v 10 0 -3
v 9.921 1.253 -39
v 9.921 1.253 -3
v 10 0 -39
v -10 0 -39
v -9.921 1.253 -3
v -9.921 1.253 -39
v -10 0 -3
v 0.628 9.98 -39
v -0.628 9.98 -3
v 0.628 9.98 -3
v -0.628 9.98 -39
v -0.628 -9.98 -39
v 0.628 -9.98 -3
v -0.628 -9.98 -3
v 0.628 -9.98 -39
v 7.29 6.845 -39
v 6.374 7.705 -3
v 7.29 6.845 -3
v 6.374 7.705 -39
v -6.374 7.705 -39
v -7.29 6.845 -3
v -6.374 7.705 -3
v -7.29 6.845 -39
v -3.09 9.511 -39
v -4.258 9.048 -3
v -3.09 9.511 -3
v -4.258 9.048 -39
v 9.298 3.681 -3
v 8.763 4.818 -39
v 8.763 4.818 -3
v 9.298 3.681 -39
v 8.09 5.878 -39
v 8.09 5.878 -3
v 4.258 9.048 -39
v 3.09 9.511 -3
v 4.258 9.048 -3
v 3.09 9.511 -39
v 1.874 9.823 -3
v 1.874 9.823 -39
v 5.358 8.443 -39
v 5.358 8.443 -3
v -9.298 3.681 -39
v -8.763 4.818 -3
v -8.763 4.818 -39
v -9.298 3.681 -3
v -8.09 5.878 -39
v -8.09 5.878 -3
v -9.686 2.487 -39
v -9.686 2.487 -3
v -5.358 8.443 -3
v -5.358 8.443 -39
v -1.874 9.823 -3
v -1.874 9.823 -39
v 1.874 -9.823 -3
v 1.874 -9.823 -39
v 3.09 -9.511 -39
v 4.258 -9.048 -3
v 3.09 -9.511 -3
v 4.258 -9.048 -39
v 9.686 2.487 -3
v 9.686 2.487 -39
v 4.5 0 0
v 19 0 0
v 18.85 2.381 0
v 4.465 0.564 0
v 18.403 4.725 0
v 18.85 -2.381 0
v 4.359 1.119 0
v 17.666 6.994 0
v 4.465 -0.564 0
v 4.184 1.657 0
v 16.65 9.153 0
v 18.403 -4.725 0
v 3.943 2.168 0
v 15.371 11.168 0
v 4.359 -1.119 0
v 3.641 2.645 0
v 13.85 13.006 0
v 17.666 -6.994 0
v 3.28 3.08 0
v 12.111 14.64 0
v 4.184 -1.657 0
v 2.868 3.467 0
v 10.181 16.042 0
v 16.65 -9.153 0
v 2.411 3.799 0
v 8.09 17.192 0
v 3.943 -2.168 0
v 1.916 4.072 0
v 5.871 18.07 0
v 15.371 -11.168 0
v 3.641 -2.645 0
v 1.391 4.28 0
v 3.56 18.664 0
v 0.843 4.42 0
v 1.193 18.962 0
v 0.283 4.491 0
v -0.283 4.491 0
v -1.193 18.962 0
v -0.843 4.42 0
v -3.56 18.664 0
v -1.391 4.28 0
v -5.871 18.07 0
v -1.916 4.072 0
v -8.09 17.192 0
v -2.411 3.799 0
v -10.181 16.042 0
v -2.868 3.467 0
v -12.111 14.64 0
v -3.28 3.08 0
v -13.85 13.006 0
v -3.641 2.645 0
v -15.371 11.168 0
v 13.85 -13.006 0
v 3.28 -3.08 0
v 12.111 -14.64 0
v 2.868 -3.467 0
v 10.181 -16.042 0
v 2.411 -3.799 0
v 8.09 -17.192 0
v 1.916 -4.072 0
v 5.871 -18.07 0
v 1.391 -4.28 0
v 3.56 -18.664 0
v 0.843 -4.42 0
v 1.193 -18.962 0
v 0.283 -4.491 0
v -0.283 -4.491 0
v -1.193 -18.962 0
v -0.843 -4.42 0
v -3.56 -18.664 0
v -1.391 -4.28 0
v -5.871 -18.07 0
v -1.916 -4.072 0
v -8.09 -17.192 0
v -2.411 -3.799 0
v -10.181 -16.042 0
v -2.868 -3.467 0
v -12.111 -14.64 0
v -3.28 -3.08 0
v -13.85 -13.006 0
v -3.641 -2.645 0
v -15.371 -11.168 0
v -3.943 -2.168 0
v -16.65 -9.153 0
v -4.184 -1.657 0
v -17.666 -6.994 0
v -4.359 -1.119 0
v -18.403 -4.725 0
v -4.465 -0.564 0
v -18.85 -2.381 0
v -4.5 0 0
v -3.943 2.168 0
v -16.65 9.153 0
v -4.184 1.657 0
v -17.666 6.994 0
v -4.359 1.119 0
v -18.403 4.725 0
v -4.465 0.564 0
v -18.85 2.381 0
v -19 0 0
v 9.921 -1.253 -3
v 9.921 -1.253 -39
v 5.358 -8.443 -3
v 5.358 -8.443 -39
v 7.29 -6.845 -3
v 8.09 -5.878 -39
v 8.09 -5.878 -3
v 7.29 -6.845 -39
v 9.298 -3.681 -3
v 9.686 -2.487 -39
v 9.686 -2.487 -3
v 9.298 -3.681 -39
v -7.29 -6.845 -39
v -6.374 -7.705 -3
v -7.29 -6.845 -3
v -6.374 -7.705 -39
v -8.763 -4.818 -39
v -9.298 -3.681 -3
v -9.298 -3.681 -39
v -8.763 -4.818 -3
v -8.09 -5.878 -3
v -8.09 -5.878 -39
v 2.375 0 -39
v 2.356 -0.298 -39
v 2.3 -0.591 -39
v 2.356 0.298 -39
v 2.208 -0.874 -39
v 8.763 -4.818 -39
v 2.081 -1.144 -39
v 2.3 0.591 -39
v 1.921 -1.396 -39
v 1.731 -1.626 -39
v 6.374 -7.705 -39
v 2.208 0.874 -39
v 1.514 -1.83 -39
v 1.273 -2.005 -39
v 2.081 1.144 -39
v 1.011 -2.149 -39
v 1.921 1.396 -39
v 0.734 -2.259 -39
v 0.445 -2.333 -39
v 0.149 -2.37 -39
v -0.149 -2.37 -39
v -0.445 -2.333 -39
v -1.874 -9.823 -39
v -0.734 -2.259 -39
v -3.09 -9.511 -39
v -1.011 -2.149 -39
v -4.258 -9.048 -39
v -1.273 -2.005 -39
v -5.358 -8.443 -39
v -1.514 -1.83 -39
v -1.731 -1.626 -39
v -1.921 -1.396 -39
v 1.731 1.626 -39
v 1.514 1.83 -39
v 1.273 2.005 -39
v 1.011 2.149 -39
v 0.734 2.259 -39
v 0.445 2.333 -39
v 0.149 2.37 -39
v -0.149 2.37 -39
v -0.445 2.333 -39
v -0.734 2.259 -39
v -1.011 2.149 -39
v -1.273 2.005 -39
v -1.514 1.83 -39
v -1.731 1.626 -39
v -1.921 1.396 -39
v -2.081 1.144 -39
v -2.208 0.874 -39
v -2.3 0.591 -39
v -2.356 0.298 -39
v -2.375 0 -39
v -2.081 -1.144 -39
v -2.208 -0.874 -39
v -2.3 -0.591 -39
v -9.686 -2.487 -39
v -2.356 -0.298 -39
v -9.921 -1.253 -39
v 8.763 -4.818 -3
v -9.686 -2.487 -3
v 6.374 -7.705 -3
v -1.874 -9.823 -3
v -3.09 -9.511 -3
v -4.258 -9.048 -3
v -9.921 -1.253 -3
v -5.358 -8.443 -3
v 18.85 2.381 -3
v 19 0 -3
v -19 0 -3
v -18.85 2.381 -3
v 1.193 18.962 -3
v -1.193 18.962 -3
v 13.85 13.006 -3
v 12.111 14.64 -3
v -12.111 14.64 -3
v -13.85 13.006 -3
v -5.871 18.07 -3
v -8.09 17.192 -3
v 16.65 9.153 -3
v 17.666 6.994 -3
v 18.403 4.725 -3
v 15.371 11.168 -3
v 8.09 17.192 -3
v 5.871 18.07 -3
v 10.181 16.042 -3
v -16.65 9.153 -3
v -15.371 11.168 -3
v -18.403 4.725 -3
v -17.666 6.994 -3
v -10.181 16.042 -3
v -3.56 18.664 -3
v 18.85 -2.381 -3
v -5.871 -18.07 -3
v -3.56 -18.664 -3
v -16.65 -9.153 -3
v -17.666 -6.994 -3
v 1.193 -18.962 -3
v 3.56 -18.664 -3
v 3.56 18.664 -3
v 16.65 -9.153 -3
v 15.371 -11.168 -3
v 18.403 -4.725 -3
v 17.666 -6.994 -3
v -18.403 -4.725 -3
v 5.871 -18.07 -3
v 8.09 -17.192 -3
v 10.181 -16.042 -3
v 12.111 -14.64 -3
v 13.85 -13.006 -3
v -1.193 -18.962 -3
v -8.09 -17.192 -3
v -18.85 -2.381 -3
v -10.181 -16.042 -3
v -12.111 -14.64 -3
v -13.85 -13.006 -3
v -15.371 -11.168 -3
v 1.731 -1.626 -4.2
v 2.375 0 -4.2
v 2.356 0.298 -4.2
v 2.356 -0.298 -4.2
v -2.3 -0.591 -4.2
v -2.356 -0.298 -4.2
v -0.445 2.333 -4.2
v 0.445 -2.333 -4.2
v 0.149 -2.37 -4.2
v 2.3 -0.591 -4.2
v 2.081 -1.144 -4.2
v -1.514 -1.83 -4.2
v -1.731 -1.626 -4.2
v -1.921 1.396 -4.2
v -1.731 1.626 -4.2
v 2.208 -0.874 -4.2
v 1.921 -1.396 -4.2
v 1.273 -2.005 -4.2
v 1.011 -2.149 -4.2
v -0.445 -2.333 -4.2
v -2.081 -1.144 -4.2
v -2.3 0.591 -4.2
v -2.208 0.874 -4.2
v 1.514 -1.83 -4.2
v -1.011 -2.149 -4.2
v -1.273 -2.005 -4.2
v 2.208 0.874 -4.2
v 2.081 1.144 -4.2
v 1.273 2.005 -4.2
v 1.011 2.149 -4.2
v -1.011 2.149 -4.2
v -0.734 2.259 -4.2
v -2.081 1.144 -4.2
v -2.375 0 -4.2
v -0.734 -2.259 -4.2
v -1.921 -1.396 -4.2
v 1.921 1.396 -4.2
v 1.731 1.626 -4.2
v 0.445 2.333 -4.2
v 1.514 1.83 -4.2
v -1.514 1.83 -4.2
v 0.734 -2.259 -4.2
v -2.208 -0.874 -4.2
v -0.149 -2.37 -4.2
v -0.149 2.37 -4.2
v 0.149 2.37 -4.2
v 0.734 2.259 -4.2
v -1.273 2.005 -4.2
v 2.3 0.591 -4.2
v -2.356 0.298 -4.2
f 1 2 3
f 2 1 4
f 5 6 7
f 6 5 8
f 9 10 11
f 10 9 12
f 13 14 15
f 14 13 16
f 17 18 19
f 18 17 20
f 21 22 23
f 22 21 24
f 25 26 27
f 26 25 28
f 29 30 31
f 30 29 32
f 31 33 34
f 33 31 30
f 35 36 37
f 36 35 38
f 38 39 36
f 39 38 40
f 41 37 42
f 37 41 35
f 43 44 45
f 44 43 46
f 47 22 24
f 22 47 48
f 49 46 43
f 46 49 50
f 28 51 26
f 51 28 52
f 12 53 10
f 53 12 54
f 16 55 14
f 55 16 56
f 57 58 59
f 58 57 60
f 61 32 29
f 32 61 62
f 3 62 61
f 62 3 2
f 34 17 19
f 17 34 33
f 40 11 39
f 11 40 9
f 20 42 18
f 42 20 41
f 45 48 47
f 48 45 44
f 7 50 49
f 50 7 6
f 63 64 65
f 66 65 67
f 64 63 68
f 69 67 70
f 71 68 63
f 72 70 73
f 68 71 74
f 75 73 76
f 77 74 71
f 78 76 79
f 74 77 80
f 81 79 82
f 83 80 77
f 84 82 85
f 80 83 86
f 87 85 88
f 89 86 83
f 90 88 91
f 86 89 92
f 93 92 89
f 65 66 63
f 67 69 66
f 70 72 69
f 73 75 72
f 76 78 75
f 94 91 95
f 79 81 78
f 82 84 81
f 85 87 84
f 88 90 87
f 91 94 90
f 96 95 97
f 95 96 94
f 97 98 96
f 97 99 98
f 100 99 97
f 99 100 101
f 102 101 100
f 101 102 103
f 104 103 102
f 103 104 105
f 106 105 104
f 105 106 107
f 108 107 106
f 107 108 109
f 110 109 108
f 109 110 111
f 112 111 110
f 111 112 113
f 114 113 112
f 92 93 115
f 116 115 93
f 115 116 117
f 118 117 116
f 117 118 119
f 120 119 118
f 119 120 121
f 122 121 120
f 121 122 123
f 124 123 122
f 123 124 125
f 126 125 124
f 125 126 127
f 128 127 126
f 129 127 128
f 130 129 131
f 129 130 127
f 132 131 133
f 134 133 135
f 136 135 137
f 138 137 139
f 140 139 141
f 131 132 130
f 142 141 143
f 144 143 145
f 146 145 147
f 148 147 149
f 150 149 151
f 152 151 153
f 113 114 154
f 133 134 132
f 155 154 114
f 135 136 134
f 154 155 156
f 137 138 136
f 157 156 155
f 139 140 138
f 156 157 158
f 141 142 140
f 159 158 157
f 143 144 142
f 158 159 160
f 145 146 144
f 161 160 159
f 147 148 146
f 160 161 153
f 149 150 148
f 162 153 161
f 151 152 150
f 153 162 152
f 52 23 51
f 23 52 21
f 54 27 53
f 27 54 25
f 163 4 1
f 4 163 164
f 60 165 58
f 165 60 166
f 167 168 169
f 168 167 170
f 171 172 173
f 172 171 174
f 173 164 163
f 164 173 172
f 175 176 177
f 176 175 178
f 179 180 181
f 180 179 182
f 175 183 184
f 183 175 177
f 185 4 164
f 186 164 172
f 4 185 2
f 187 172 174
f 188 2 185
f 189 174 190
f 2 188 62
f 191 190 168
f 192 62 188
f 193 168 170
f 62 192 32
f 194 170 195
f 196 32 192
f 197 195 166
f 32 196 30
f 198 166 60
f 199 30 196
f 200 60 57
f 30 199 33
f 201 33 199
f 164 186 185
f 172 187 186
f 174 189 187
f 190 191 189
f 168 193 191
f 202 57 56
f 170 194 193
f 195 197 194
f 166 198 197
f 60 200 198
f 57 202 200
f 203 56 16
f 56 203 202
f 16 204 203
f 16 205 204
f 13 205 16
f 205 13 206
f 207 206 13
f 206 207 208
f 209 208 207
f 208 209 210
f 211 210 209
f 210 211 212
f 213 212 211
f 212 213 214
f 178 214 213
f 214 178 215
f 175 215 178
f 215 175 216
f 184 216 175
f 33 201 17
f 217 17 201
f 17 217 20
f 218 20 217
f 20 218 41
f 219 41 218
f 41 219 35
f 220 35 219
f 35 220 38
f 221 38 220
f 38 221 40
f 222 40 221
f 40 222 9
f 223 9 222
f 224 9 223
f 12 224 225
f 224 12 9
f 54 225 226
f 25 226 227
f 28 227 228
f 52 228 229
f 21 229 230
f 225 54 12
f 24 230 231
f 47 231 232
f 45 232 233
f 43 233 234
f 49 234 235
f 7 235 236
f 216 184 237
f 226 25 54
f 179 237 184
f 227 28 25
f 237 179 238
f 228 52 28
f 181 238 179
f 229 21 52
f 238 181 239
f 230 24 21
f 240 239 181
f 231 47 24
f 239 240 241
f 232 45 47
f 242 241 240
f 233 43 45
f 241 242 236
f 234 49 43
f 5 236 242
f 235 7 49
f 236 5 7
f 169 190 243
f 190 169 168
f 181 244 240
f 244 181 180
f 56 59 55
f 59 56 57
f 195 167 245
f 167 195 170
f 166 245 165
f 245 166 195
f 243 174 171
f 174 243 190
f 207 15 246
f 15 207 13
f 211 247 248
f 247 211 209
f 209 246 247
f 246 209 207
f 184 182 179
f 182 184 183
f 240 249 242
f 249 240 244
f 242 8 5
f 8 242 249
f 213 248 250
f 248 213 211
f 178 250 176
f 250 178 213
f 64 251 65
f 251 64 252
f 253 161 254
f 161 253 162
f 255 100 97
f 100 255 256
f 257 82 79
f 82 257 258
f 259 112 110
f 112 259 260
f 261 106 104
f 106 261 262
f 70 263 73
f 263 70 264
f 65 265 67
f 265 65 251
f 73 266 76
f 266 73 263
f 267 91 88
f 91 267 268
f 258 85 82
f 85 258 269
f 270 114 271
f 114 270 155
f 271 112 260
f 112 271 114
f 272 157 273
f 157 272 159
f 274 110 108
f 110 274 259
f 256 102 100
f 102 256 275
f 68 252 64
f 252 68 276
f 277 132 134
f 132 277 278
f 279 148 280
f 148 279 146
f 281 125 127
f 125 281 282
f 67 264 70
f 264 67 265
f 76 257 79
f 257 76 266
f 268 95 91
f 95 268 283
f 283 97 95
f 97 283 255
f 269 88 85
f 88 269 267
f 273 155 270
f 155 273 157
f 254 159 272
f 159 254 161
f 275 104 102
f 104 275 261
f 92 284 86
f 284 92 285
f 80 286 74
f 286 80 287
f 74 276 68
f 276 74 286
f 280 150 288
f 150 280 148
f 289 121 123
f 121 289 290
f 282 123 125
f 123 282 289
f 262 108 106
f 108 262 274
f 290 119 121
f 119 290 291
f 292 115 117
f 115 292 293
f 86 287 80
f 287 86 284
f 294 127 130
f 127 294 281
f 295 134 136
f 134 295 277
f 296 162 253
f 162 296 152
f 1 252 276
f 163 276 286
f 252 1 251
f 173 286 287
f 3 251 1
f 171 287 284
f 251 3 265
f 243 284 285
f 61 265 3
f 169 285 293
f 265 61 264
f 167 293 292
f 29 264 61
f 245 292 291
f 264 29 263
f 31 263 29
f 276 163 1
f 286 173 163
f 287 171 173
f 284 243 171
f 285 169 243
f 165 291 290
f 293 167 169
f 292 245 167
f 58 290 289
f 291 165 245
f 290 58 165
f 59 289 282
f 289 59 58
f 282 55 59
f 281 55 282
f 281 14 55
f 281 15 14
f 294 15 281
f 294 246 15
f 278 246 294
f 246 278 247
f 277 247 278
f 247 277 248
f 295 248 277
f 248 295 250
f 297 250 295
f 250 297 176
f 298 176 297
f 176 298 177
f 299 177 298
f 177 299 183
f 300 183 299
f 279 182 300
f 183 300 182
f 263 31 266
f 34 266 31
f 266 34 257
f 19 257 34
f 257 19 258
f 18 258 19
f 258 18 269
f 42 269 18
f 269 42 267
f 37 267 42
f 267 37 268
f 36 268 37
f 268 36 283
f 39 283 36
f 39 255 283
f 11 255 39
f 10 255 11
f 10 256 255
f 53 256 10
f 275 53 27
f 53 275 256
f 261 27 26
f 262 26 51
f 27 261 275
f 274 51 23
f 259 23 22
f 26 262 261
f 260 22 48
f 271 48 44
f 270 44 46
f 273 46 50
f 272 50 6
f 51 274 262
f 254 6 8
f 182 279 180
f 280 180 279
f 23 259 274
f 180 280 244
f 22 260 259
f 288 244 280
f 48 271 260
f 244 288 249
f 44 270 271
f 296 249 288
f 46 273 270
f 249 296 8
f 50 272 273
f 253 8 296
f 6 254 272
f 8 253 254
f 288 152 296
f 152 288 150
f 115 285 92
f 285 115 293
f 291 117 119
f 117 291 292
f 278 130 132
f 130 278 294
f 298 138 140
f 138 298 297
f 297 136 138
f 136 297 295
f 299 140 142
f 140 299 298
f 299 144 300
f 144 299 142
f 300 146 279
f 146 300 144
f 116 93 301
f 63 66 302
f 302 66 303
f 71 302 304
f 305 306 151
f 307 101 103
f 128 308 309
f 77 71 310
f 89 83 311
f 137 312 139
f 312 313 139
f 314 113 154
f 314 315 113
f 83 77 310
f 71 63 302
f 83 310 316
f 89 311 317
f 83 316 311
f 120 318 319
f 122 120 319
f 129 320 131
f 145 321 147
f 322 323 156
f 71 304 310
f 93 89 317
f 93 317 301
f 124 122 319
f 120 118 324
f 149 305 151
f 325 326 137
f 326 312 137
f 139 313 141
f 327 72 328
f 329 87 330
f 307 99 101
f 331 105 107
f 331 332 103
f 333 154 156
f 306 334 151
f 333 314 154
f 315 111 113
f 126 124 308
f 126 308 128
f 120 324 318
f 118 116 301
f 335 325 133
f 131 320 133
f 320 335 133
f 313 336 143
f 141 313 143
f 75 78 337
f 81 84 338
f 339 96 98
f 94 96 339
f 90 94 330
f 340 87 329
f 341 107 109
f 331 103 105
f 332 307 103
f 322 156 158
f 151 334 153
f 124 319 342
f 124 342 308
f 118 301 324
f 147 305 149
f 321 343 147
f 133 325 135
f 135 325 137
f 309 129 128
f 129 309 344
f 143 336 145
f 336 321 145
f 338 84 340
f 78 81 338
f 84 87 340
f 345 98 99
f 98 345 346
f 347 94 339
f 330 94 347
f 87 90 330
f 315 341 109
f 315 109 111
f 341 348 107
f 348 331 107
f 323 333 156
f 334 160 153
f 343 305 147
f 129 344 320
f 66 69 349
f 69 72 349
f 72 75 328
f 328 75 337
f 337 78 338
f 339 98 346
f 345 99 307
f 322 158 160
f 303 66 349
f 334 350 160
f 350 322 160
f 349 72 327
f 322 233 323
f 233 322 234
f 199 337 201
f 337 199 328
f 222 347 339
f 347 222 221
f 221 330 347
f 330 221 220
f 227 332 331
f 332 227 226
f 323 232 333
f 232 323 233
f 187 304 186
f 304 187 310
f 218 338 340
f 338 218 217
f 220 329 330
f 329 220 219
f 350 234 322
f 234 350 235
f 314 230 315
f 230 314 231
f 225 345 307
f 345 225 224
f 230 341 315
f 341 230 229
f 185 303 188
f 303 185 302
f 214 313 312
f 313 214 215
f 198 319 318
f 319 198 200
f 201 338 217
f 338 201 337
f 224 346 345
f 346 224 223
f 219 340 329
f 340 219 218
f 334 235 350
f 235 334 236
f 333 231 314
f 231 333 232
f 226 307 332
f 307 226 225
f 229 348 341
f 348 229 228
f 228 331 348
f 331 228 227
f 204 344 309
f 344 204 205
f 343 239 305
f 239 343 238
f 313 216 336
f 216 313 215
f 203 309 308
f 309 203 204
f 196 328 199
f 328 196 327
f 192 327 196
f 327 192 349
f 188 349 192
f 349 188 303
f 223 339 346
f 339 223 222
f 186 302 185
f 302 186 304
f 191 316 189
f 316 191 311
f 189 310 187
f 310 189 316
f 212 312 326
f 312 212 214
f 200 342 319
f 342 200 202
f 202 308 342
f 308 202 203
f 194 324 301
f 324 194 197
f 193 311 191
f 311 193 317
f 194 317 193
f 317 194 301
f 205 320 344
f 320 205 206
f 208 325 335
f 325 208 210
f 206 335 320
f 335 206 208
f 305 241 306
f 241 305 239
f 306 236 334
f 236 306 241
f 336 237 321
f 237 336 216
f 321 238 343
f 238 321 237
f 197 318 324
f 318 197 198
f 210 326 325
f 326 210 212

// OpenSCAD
$fn = 50;


difference() {
	union() {
		translate(v = [0, 0, -39.0000000000]) {
			cylinder(h = 39, r = 10.0000000000);
		}
		translate(v = [0, 0, -3.0000000000]) {
			cylinder(h = 3, r = 19.0000000000);
		}
	}
	union() {
		translate(v = [0, 0, 0]) {
			rotate(a = [0, 0, 0]) {
				difference() {
					union() {
						#translate(v = [0, 0, -39.0000000000]) {
							cylinder(h = 39, r = 2.2500000000);
						}
						#translate(v = [0, 0, -4.2000000000]) {
							cylinder(h = 4.2000000000, r1 = 2.3750000000, r2 = 4.5000000000);
						}
						#translate(v = [0, 0, -39.0000000000]) {
							cylinder(h = 39, r = 2.3750000000);
						}
						#translate(v = [0, 0, -39.0000000000]) {
							cylinder(h = 39, r = 2.2500000000);
						}
					}
					union();
				}
			}
		}
	}
}
